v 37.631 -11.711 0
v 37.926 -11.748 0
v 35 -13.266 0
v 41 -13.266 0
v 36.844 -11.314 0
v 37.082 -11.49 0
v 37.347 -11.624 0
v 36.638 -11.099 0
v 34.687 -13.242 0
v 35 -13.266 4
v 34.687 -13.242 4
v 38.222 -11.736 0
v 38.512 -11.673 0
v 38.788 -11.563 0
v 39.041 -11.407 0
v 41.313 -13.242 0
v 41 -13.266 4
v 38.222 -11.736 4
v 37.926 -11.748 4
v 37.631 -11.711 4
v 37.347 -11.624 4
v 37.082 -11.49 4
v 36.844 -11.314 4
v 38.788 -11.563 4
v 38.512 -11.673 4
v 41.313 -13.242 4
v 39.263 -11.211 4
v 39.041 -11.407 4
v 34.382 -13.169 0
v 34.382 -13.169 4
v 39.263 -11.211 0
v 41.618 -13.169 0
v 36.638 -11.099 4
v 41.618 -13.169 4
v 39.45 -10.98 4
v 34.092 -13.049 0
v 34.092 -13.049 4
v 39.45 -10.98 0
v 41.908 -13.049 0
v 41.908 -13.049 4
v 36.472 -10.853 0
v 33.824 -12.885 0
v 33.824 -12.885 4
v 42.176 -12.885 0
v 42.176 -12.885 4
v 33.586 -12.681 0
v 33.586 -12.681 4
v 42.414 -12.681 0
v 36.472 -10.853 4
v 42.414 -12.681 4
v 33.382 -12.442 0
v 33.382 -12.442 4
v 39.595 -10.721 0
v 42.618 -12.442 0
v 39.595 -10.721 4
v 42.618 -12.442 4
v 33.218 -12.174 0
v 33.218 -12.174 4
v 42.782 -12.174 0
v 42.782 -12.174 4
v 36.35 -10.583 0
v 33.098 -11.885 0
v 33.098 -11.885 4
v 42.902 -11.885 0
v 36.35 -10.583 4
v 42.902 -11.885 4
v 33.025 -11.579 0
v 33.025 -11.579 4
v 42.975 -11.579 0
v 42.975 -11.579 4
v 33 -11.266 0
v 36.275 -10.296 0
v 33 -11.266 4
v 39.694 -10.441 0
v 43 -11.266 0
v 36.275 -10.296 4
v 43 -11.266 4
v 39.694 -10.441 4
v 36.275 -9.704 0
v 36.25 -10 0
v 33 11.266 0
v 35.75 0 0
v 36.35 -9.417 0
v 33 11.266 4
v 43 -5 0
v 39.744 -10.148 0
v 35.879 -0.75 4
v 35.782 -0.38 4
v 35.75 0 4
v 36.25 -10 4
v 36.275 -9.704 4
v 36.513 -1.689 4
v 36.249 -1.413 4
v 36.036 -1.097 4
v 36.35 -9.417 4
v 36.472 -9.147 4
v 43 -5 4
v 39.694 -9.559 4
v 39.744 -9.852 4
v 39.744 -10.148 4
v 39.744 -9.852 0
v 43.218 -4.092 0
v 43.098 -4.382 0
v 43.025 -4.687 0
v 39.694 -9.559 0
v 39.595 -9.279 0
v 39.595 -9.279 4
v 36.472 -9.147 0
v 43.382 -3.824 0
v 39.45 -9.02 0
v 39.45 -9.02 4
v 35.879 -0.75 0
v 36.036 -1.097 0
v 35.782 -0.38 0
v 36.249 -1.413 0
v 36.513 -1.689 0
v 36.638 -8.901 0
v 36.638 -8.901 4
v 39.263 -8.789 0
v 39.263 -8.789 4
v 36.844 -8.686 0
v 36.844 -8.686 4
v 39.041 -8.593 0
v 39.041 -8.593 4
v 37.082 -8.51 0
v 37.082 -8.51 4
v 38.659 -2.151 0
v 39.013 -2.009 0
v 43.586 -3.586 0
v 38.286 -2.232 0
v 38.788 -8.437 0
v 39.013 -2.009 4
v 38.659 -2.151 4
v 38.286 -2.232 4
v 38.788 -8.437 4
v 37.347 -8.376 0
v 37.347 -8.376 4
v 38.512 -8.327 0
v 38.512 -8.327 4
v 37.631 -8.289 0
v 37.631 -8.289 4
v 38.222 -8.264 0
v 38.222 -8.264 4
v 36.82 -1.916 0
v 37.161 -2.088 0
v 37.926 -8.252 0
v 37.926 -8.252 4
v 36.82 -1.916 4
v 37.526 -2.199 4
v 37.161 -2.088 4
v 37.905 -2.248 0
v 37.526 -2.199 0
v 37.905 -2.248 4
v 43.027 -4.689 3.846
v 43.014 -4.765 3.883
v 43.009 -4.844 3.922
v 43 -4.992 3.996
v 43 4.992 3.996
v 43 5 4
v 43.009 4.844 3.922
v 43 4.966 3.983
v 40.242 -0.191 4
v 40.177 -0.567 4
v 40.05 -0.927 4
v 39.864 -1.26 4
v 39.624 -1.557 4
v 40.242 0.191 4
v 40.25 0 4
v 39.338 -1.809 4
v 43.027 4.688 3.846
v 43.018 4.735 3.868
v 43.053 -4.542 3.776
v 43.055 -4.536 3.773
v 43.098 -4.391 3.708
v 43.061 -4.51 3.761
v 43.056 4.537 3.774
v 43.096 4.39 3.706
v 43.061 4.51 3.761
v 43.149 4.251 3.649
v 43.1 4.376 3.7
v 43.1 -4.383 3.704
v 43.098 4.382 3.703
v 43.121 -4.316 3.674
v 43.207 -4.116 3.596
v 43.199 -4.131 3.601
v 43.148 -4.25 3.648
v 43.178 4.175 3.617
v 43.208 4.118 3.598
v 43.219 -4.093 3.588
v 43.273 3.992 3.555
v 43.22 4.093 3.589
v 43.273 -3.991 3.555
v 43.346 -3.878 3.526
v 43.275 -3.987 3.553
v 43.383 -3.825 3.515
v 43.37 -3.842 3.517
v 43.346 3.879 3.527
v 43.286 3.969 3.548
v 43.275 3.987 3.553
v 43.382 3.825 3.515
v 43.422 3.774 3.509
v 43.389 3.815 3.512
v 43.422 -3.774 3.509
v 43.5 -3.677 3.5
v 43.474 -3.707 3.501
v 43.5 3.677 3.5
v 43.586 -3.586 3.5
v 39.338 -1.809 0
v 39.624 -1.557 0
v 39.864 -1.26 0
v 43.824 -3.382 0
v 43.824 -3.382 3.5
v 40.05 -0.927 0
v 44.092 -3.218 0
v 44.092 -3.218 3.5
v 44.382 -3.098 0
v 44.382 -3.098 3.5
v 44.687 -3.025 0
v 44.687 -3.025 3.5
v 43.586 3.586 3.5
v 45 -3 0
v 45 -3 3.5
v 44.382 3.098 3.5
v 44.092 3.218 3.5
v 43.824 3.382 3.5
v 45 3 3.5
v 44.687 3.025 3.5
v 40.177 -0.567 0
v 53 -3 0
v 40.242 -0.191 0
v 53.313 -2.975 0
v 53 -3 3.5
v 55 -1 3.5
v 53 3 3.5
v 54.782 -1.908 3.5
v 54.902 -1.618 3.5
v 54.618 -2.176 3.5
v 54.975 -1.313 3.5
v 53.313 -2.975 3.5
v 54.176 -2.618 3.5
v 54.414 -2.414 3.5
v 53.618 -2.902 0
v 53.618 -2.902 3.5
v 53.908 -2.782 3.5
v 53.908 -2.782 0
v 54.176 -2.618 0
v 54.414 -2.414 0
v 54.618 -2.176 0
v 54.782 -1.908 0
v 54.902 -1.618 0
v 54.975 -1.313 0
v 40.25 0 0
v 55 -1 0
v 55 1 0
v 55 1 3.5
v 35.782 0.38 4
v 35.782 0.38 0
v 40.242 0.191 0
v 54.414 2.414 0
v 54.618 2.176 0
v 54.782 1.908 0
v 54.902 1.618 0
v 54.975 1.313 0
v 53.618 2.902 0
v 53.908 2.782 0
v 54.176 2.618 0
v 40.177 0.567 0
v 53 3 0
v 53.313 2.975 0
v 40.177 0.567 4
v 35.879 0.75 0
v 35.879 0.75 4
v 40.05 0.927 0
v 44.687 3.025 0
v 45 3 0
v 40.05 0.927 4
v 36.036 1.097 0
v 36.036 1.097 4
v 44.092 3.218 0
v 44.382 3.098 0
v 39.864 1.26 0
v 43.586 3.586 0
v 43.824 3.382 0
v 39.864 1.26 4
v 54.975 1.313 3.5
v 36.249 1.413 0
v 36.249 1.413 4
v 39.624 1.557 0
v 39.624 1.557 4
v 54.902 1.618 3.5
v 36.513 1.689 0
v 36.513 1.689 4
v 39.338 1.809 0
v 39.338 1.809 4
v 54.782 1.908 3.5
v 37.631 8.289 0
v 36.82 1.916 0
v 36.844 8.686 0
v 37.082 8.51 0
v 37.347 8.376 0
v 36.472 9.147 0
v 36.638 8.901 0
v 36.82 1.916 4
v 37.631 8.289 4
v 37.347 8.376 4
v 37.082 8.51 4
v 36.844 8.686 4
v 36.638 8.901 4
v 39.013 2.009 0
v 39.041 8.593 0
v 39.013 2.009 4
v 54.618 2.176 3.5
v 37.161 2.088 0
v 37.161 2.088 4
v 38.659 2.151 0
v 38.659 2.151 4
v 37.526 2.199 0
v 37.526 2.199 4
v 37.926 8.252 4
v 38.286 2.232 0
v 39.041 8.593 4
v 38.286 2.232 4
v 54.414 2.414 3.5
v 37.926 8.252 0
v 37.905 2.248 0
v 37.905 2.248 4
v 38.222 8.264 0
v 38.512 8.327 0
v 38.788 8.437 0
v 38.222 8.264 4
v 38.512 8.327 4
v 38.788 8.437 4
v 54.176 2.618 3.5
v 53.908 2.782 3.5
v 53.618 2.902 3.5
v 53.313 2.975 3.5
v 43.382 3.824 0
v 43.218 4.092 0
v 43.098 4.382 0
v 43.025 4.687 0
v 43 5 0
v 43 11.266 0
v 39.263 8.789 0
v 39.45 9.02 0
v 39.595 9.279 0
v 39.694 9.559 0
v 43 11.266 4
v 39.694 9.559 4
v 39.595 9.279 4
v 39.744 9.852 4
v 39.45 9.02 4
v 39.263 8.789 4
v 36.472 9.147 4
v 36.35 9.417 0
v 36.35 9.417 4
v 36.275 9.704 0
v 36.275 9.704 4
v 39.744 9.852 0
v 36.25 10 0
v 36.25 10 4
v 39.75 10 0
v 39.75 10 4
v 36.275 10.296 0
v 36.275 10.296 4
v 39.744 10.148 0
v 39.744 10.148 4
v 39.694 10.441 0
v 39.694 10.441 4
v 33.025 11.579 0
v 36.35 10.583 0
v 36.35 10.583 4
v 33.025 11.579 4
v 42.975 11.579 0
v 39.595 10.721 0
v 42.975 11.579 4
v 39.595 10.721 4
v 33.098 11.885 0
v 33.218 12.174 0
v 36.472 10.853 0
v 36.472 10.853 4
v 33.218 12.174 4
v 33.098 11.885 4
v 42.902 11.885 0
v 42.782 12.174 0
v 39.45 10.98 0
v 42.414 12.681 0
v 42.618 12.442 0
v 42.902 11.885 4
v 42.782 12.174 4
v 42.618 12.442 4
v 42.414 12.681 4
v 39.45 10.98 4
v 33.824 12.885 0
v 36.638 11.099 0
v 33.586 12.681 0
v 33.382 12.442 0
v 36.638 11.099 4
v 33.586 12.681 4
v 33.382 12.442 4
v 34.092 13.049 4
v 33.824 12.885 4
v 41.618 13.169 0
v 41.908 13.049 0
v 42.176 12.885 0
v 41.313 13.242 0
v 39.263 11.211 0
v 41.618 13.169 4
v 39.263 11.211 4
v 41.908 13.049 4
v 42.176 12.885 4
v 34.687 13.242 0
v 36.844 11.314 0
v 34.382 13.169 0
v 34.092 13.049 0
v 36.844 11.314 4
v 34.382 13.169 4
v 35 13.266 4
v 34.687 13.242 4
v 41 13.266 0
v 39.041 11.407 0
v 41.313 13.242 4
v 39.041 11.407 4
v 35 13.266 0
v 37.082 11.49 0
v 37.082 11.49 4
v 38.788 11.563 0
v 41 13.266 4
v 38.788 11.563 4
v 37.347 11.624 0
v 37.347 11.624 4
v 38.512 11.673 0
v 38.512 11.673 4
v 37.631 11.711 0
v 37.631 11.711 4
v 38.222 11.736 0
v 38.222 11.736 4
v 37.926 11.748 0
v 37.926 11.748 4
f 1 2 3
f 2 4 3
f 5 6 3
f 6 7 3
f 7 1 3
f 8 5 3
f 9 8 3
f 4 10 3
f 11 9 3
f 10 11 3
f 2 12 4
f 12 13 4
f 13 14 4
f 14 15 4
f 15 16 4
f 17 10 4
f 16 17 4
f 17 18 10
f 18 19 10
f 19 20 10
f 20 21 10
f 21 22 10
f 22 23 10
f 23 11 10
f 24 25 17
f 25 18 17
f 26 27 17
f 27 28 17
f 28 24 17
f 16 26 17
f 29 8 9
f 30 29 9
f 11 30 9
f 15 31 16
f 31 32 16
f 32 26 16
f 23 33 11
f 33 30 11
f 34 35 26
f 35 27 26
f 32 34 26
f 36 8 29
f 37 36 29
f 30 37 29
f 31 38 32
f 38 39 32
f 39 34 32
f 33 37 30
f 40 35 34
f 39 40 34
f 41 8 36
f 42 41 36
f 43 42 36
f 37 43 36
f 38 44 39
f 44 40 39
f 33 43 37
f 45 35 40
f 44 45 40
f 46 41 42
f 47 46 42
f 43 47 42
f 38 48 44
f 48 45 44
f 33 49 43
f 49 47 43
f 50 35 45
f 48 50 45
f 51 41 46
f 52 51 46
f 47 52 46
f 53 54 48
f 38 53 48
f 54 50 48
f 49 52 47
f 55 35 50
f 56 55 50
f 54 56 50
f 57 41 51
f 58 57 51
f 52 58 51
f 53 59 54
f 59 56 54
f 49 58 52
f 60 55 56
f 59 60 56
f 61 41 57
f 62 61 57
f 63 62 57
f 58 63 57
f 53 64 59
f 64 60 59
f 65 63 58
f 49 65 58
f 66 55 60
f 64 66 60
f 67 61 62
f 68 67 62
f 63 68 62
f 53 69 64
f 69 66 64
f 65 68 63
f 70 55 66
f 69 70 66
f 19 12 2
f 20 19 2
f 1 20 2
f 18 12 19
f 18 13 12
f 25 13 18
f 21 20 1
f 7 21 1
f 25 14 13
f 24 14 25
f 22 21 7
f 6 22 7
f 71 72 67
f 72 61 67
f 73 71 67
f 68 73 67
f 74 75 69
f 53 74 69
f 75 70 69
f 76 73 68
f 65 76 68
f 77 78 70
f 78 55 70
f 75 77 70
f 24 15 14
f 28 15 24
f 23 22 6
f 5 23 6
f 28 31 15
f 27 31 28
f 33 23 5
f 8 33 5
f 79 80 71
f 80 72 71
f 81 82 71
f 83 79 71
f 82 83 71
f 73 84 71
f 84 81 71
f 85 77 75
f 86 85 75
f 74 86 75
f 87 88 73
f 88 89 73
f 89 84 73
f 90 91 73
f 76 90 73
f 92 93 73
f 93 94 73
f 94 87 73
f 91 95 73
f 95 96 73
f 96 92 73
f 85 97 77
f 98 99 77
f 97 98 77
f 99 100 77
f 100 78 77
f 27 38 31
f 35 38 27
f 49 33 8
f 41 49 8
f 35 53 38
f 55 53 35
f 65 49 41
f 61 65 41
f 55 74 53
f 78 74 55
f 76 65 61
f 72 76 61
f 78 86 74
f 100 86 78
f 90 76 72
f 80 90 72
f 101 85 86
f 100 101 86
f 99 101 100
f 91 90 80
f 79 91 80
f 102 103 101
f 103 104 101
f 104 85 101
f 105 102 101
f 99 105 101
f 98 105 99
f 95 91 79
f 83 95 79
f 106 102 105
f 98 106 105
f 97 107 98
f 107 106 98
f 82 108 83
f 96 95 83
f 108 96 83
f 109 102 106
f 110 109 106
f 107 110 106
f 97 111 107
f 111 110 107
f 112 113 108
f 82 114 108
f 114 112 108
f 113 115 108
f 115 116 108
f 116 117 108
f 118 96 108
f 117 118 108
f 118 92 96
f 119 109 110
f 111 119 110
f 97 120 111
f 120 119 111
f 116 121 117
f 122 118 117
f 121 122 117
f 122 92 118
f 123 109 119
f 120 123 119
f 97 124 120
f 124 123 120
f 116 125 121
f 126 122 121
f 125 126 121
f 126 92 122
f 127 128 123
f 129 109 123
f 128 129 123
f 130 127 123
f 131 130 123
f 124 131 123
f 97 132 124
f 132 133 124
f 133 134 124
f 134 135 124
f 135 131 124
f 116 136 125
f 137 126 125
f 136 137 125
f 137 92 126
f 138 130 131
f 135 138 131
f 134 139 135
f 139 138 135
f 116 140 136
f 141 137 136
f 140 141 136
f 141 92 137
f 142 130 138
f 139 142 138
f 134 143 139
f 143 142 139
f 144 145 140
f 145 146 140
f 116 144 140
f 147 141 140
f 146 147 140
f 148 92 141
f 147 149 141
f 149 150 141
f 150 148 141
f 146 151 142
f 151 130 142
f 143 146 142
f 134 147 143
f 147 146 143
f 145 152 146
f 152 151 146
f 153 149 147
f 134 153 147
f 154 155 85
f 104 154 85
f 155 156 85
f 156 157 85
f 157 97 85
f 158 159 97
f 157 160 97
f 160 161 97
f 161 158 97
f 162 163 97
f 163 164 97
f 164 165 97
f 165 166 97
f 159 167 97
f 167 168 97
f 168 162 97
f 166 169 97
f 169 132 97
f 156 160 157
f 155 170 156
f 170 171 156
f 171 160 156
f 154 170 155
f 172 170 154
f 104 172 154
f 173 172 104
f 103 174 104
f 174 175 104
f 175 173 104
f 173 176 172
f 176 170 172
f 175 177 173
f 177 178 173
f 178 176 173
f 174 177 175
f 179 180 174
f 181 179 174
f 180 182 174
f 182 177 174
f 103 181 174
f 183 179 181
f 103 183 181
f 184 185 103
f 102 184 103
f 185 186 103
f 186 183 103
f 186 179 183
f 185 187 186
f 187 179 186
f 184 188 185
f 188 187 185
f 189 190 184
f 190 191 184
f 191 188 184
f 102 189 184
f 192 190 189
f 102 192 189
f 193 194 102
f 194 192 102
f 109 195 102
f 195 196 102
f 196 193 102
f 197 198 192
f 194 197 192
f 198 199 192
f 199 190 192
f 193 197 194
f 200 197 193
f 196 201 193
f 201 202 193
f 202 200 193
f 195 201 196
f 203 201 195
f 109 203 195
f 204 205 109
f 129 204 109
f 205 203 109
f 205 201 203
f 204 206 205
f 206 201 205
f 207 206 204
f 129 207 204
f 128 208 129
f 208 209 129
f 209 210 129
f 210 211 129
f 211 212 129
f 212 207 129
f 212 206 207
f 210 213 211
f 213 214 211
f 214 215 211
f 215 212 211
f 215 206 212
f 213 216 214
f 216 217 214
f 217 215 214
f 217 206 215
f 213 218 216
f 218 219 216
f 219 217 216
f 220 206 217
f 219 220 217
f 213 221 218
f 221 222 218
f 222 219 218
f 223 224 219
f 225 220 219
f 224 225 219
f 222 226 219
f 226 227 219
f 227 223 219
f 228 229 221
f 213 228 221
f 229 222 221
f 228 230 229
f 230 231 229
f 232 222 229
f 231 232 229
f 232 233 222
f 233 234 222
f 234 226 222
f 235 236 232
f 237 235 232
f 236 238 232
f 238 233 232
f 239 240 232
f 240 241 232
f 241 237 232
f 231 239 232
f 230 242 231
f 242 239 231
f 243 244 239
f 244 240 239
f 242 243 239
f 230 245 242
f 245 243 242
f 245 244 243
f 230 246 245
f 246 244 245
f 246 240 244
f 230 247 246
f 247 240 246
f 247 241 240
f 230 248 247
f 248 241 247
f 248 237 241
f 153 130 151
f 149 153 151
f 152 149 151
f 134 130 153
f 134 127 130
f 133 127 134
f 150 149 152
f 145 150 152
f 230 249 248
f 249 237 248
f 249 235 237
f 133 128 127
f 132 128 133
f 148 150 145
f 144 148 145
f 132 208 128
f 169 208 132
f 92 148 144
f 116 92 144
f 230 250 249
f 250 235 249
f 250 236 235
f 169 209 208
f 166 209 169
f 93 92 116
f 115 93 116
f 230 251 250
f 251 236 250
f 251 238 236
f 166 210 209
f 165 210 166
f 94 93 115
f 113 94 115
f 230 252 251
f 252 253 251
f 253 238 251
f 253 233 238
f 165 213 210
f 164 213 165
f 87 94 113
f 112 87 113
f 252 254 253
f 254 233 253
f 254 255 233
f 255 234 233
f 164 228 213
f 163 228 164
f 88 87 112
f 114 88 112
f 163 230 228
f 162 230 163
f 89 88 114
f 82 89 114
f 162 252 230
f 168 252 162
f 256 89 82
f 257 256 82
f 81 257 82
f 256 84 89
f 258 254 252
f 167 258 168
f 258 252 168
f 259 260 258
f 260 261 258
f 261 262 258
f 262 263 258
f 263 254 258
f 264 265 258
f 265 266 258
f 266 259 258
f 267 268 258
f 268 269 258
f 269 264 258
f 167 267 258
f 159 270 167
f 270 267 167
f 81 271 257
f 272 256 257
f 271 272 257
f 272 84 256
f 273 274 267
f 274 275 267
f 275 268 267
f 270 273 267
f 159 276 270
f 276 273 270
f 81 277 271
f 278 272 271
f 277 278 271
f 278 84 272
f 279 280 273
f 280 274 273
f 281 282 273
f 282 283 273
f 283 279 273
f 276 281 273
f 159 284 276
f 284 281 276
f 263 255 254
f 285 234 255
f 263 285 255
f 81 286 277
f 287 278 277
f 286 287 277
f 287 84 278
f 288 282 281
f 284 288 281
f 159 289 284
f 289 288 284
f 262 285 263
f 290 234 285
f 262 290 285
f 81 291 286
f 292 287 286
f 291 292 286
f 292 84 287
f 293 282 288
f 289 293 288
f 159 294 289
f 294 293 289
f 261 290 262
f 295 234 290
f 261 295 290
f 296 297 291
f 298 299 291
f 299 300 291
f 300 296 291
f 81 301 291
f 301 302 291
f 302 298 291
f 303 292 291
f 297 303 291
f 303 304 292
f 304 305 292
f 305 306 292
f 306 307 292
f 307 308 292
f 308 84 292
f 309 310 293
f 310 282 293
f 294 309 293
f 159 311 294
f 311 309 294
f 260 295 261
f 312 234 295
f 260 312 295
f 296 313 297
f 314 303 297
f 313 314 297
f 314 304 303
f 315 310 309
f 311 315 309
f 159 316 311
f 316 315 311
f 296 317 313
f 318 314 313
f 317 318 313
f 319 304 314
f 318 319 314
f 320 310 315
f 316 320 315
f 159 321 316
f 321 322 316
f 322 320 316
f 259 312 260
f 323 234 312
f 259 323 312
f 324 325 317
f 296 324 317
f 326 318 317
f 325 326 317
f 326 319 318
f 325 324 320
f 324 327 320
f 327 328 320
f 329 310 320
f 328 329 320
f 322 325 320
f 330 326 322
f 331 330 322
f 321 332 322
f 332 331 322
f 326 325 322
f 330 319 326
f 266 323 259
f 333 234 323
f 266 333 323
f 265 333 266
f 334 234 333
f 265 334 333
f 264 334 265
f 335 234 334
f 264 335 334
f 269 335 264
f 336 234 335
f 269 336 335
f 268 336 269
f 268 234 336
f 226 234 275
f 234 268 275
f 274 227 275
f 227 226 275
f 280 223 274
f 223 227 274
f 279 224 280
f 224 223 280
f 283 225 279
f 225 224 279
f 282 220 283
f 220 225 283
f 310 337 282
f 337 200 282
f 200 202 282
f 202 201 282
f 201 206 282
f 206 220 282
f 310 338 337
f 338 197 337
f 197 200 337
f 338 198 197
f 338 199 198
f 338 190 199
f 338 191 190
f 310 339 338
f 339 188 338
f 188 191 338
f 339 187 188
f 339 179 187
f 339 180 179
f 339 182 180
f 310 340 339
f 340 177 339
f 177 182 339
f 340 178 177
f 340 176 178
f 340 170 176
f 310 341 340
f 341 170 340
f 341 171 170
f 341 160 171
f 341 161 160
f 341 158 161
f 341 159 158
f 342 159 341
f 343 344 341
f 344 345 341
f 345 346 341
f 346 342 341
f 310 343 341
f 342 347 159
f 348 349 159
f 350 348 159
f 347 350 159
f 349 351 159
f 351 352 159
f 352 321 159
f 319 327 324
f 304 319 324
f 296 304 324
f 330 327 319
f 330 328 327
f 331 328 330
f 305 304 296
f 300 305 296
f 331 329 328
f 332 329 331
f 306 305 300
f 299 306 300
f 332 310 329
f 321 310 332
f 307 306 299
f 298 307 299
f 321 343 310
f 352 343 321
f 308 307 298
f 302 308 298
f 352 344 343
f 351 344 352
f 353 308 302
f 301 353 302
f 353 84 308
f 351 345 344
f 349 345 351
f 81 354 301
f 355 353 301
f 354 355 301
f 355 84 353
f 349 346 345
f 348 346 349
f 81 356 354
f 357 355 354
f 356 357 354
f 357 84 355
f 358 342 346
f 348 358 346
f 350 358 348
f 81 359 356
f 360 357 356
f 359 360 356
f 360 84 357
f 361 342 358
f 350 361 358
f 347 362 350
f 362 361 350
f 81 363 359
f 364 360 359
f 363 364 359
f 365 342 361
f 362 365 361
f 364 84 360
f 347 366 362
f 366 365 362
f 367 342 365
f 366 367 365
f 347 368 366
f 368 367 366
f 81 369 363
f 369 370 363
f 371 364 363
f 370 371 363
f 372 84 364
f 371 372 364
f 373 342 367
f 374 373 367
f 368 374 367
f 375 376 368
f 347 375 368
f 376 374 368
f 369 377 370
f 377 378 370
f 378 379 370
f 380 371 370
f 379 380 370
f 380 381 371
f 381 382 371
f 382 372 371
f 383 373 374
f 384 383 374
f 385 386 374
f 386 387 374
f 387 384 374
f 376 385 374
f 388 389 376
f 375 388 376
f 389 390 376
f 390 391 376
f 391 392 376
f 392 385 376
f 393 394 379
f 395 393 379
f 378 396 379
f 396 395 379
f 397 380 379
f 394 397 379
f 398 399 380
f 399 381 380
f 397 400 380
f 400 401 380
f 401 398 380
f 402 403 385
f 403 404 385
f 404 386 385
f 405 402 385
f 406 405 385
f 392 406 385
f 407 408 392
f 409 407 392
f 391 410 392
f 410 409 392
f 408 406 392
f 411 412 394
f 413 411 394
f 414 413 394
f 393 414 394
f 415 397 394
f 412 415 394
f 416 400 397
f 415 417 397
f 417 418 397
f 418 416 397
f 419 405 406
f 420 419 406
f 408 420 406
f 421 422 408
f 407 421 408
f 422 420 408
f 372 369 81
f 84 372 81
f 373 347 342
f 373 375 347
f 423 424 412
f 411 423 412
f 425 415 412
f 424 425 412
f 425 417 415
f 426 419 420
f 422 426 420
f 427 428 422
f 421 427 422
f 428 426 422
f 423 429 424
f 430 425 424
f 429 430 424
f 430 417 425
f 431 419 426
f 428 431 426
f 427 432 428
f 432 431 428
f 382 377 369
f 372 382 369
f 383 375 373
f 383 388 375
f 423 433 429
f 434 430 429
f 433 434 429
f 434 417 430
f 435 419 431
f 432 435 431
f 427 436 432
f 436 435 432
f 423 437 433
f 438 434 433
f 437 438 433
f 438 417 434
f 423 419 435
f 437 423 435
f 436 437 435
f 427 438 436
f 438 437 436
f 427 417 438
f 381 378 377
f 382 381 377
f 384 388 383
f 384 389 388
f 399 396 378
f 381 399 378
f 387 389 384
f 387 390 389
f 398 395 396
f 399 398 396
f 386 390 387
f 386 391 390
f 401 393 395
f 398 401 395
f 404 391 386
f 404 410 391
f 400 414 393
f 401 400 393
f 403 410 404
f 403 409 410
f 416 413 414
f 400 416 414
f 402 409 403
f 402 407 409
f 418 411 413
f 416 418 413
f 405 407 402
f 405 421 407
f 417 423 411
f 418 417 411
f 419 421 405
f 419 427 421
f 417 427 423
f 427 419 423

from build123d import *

# Parameters (mm, degrees)
SKETCH1_W           = 10
SKETCH1_H           = 26.532998322
SKETCH1_R           = 2.25
SKETCH1_R_2         = 1.75
BOSS_EXTRUDE1_DEPTH = 4
SKETCH6_W           = 12
SKETCH6_H           = 6
BOSS_EXTRUDE3_DEPTH = 3.5
FILLET1_R           = 2
FILLET2_R           = 2
FILLET3_R           = 0.5
FILLET4_R           = 2


with BuildPart() as part:
    # Sketch1 → Boss-Extrude1 (new body)
    with BuildSketch(Plane.XY):
        with Locations((38, 0)):
            Rectangle(SKETCH1_W, SKETCH1_H)
        with Locations((38, 0)):
            Circle(SKETCH1_R, mode=Mode.SUBTRACT)
        with Locations((38, 10)):
            Circle(SKETCH1_R_2, mode=Mode.SUBTRACT)
        with Locations(Location((38, -10, 0), (0, 0, 180))):
            Circle(SKETCH1_R_2, mode=Mode.SUBTRACT)
    extrude(amount=BOSS_EXTRUDE1_DEPTH)

    # Sketch6 → Boss-Extrude3 (add)
    with BuildSketch(Plane.XY):
        with Locations((49, 0)):
            Rectangle(SKETCH6_W, SKETCH6_H)
    extrude(amount=BOSS_EXTRUDE3_DEPTH)

    # Fillet1
    fillet1_edges = [part.edges().sort_by_distance(p)[0] for p in [
        (55, -3, 1.75),
        (55, 3, 1.75),
    ]]
    fillet(fillet1_edges, radius=FILLET1_R)

    # Fillet2
    fillet2_edges = [part.edges().sort_by_distance(p)[0] for p in [
        (43, 3, 1.75),
        (43, -3, 1.75),
    ]]
    fillet(fillet2_edges, radius=FILLET2_R)

    # Fillet3
    fillet3_edges = [part.edges().sort_by_distance(p)[0] for p in [
        (43, 0, 3.5),
    ]]
    fillet(fillet3_edges, radius=FILLET3_R - 0.0001)  # a hair under: the kernel refuses the full size

    # Fillet4
    fillet4_edges = [part.edges().sort_by_distance(p)[0] for p in [
        (43, -13.266499161, 2),
        (33, -13.266499161, 2),
        (33, 13.266499161, 2),
        (43, 13.266499161, 2),
    ]]
    fillet(fillet4_edges, radius=FILLET4_R)


solid = part.part
